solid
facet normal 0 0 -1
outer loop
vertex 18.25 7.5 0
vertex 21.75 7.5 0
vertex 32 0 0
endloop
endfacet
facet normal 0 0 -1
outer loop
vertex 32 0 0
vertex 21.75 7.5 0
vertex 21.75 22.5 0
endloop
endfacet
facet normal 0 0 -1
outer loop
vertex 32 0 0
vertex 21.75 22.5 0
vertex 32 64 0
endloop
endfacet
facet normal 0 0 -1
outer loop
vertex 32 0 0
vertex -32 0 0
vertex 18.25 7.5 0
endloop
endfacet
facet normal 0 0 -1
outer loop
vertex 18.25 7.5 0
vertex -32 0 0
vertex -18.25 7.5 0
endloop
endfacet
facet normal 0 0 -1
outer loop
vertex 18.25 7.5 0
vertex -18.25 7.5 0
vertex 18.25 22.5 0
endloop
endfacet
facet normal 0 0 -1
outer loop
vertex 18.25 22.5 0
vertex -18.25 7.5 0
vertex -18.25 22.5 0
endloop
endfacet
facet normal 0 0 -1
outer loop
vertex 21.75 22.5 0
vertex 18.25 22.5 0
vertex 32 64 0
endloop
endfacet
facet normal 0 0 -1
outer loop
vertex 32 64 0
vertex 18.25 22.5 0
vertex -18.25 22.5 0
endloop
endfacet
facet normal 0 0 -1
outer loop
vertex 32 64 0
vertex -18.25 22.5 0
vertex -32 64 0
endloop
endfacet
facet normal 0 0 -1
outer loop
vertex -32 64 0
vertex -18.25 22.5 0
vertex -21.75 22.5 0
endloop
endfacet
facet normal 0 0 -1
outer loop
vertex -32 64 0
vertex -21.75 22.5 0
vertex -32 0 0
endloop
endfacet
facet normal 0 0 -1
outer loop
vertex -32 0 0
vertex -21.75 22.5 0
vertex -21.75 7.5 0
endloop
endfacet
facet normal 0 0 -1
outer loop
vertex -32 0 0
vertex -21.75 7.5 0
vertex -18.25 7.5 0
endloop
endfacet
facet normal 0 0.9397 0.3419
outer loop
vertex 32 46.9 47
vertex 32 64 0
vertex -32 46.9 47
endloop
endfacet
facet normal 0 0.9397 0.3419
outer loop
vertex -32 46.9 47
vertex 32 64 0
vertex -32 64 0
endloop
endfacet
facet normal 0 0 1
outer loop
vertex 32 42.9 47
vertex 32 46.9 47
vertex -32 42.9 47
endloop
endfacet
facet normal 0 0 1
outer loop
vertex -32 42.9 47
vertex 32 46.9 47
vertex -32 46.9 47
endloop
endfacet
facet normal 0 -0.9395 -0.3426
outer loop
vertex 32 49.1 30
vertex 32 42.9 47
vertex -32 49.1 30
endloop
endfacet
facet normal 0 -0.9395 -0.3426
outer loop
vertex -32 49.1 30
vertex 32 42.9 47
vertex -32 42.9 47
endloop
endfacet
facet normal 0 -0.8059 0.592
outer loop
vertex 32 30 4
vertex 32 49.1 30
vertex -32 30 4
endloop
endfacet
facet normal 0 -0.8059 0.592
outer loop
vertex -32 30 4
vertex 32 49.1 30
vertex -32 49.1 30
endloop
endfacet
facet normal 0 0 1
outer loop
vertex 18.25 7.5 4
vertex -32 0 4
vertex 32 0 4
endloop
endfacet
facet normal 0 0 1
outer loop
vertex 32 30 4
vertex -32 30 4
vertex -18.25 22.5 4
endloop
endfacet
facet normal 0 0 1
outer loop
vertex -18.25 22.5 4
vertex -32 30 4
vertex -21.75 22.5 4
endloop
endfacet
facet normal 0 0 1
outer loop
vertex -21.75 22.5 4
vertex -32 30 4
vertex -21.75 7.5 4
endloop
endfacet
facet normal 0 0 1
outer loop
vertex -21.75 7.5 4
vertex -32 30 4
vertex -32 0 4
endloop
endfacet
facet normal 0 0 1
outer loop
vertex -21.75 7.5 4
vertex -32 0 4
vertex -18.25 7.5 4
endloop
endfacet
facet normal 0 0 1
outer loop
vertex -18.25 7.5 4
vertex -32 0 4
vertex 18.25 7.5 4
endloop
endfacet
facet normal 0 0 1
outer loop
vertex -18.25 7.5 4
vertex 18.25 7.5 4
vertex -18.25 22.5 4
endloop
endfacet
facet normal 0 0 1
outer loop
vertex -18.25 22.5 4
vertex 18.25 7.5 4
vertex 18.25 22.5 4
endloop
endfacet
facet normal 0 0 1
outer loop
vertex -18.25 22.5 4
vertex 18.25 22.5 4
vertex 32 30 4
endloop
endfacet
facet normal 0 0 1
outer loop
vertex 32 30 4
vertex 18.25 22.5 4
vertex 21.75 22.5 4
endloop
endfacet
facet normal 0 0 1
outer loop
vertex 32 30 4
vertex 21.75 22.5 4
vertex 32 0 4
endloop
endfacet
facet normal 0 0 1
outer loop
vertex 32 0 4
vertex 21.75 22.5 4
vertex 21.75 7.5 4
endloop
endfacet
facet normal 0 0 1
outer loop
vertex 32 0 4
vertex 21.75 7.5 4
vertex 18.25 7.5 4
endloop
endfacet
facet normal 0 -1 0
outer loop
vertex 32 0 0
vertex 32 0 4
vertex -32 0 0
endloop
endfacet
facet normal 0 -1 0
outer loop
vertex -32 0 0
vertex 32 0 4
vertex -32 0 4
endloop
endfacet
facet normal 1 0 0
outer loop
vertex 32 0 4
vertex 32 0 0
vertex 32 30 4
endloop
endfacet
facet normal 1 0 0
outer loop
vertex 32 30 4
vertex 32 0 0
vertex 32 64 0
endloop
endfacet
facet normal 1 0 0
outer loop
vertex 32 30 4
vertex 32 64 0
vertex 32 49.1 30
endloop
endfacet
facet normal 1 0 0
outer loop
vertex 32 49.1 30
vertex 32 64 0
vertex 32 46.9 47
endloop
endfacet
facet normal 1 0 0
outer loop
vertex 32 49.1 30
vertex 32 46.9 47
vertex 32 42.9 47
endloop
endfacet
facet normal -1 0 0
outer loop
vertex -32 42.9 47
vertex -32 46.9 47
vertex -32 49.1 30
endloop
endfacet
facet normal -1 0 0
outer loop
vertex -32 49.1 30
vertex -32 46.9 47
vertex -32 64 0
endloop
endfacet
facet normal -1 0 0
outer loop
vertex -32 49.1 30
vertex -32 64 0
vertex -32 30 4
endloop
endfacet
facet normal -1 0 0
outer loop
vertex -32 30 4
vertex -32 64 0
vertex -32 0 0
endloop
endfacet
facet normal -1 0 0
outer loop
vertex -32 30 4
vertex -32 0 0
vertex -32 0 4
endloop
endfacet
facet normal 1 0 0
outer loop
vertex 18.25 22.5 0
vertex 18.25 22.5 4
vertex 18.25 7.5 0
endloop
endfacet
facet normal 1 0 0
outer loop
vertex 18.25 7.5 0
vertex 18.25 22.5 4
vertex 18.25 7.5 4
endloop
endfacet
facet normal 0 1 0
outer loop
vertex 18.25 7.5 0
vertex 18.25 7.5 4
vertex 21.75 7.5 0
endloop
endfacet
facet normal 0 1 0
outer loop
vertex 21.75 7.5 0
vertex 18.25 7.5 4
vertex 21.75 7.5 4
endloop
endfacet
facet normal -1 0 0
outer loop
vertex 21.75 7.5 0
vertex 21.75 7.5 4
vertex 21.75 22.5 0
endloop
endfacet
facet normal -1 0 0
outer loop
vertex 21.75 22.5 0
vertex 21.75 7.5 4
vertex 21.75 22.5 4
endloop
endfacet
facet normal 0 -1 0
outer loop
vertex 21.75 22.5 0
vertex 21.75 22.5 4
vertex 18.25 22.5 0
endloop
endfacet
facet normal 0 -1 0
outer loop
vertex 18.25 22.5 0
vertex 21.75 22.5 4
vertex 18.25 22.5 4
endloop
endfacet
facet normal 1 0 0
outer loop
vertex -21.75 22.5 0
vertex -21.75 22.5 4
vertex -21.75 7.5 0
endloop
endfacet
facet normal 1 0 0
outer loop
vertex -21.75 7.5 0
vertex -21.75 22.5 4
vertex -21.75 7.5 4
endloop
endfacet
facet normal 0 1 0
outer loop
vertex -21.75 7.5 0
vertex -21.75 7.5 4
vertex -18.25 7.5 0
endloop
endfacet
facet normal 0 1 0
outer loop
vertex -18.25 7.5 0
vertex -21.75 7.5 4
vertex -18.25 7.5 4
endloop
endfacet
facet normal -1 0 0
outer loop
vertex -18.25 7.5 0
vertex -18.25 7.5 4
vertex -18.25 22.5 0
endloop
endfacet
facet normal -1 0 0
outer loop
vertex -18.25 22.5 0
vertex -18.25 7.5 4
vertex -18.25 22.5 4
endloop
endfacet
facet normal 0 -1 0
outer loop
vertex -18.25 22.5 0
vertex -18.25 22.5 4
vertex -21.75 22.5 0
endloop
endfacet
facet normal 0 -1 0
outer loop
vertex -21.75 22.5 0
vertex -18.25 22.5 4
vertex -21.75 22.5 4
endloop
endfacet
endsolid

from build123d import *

# Parameters (mm, degrees)
BOSS_EXTRUDE1_DEPTH = 32
SKETCH2_W           = 3.5
SKETCH2_H           = 15
CUT_EXTRUDE1_DEPTH  = 86.609578903


with BuildPart() as part:
    # Sketch1 → Boss-Extrude1 (new, symmetric)
    with BuildSketch(Plane(origin=(0, 0, 0), x_dir=(0, 0, -1), z_dir=(1, 0, 0))):
        Polygon((0, 0), (-4, 0), (-4, 30), (-30, 49.1), (-47, 42.9), (-47, 46.9), (0, 64), align=None)
    extrude(amount=BOSS_EXTRUDE1_DEPTH, both=True)

    # Sketch2 → Cut-Extrude1 (cut, through all)
    with BuildSketch(Plane(origin=(0, 0, 0), x_dir=(-1, 0, 0), z_dir=(0, 0, -1))):
        with Locations((20, 15)):
            Rectangle(SKETCH2_W, SKETCH2_H)
        with Locations((-20, 15)):
            Rectangle(SKETCH2_W, SKETCH2_H)
    extrude(amount=-CUT_EXTRUDE1_DEPTH, mode=Mode.SUBTRACT)


solid = part.part
